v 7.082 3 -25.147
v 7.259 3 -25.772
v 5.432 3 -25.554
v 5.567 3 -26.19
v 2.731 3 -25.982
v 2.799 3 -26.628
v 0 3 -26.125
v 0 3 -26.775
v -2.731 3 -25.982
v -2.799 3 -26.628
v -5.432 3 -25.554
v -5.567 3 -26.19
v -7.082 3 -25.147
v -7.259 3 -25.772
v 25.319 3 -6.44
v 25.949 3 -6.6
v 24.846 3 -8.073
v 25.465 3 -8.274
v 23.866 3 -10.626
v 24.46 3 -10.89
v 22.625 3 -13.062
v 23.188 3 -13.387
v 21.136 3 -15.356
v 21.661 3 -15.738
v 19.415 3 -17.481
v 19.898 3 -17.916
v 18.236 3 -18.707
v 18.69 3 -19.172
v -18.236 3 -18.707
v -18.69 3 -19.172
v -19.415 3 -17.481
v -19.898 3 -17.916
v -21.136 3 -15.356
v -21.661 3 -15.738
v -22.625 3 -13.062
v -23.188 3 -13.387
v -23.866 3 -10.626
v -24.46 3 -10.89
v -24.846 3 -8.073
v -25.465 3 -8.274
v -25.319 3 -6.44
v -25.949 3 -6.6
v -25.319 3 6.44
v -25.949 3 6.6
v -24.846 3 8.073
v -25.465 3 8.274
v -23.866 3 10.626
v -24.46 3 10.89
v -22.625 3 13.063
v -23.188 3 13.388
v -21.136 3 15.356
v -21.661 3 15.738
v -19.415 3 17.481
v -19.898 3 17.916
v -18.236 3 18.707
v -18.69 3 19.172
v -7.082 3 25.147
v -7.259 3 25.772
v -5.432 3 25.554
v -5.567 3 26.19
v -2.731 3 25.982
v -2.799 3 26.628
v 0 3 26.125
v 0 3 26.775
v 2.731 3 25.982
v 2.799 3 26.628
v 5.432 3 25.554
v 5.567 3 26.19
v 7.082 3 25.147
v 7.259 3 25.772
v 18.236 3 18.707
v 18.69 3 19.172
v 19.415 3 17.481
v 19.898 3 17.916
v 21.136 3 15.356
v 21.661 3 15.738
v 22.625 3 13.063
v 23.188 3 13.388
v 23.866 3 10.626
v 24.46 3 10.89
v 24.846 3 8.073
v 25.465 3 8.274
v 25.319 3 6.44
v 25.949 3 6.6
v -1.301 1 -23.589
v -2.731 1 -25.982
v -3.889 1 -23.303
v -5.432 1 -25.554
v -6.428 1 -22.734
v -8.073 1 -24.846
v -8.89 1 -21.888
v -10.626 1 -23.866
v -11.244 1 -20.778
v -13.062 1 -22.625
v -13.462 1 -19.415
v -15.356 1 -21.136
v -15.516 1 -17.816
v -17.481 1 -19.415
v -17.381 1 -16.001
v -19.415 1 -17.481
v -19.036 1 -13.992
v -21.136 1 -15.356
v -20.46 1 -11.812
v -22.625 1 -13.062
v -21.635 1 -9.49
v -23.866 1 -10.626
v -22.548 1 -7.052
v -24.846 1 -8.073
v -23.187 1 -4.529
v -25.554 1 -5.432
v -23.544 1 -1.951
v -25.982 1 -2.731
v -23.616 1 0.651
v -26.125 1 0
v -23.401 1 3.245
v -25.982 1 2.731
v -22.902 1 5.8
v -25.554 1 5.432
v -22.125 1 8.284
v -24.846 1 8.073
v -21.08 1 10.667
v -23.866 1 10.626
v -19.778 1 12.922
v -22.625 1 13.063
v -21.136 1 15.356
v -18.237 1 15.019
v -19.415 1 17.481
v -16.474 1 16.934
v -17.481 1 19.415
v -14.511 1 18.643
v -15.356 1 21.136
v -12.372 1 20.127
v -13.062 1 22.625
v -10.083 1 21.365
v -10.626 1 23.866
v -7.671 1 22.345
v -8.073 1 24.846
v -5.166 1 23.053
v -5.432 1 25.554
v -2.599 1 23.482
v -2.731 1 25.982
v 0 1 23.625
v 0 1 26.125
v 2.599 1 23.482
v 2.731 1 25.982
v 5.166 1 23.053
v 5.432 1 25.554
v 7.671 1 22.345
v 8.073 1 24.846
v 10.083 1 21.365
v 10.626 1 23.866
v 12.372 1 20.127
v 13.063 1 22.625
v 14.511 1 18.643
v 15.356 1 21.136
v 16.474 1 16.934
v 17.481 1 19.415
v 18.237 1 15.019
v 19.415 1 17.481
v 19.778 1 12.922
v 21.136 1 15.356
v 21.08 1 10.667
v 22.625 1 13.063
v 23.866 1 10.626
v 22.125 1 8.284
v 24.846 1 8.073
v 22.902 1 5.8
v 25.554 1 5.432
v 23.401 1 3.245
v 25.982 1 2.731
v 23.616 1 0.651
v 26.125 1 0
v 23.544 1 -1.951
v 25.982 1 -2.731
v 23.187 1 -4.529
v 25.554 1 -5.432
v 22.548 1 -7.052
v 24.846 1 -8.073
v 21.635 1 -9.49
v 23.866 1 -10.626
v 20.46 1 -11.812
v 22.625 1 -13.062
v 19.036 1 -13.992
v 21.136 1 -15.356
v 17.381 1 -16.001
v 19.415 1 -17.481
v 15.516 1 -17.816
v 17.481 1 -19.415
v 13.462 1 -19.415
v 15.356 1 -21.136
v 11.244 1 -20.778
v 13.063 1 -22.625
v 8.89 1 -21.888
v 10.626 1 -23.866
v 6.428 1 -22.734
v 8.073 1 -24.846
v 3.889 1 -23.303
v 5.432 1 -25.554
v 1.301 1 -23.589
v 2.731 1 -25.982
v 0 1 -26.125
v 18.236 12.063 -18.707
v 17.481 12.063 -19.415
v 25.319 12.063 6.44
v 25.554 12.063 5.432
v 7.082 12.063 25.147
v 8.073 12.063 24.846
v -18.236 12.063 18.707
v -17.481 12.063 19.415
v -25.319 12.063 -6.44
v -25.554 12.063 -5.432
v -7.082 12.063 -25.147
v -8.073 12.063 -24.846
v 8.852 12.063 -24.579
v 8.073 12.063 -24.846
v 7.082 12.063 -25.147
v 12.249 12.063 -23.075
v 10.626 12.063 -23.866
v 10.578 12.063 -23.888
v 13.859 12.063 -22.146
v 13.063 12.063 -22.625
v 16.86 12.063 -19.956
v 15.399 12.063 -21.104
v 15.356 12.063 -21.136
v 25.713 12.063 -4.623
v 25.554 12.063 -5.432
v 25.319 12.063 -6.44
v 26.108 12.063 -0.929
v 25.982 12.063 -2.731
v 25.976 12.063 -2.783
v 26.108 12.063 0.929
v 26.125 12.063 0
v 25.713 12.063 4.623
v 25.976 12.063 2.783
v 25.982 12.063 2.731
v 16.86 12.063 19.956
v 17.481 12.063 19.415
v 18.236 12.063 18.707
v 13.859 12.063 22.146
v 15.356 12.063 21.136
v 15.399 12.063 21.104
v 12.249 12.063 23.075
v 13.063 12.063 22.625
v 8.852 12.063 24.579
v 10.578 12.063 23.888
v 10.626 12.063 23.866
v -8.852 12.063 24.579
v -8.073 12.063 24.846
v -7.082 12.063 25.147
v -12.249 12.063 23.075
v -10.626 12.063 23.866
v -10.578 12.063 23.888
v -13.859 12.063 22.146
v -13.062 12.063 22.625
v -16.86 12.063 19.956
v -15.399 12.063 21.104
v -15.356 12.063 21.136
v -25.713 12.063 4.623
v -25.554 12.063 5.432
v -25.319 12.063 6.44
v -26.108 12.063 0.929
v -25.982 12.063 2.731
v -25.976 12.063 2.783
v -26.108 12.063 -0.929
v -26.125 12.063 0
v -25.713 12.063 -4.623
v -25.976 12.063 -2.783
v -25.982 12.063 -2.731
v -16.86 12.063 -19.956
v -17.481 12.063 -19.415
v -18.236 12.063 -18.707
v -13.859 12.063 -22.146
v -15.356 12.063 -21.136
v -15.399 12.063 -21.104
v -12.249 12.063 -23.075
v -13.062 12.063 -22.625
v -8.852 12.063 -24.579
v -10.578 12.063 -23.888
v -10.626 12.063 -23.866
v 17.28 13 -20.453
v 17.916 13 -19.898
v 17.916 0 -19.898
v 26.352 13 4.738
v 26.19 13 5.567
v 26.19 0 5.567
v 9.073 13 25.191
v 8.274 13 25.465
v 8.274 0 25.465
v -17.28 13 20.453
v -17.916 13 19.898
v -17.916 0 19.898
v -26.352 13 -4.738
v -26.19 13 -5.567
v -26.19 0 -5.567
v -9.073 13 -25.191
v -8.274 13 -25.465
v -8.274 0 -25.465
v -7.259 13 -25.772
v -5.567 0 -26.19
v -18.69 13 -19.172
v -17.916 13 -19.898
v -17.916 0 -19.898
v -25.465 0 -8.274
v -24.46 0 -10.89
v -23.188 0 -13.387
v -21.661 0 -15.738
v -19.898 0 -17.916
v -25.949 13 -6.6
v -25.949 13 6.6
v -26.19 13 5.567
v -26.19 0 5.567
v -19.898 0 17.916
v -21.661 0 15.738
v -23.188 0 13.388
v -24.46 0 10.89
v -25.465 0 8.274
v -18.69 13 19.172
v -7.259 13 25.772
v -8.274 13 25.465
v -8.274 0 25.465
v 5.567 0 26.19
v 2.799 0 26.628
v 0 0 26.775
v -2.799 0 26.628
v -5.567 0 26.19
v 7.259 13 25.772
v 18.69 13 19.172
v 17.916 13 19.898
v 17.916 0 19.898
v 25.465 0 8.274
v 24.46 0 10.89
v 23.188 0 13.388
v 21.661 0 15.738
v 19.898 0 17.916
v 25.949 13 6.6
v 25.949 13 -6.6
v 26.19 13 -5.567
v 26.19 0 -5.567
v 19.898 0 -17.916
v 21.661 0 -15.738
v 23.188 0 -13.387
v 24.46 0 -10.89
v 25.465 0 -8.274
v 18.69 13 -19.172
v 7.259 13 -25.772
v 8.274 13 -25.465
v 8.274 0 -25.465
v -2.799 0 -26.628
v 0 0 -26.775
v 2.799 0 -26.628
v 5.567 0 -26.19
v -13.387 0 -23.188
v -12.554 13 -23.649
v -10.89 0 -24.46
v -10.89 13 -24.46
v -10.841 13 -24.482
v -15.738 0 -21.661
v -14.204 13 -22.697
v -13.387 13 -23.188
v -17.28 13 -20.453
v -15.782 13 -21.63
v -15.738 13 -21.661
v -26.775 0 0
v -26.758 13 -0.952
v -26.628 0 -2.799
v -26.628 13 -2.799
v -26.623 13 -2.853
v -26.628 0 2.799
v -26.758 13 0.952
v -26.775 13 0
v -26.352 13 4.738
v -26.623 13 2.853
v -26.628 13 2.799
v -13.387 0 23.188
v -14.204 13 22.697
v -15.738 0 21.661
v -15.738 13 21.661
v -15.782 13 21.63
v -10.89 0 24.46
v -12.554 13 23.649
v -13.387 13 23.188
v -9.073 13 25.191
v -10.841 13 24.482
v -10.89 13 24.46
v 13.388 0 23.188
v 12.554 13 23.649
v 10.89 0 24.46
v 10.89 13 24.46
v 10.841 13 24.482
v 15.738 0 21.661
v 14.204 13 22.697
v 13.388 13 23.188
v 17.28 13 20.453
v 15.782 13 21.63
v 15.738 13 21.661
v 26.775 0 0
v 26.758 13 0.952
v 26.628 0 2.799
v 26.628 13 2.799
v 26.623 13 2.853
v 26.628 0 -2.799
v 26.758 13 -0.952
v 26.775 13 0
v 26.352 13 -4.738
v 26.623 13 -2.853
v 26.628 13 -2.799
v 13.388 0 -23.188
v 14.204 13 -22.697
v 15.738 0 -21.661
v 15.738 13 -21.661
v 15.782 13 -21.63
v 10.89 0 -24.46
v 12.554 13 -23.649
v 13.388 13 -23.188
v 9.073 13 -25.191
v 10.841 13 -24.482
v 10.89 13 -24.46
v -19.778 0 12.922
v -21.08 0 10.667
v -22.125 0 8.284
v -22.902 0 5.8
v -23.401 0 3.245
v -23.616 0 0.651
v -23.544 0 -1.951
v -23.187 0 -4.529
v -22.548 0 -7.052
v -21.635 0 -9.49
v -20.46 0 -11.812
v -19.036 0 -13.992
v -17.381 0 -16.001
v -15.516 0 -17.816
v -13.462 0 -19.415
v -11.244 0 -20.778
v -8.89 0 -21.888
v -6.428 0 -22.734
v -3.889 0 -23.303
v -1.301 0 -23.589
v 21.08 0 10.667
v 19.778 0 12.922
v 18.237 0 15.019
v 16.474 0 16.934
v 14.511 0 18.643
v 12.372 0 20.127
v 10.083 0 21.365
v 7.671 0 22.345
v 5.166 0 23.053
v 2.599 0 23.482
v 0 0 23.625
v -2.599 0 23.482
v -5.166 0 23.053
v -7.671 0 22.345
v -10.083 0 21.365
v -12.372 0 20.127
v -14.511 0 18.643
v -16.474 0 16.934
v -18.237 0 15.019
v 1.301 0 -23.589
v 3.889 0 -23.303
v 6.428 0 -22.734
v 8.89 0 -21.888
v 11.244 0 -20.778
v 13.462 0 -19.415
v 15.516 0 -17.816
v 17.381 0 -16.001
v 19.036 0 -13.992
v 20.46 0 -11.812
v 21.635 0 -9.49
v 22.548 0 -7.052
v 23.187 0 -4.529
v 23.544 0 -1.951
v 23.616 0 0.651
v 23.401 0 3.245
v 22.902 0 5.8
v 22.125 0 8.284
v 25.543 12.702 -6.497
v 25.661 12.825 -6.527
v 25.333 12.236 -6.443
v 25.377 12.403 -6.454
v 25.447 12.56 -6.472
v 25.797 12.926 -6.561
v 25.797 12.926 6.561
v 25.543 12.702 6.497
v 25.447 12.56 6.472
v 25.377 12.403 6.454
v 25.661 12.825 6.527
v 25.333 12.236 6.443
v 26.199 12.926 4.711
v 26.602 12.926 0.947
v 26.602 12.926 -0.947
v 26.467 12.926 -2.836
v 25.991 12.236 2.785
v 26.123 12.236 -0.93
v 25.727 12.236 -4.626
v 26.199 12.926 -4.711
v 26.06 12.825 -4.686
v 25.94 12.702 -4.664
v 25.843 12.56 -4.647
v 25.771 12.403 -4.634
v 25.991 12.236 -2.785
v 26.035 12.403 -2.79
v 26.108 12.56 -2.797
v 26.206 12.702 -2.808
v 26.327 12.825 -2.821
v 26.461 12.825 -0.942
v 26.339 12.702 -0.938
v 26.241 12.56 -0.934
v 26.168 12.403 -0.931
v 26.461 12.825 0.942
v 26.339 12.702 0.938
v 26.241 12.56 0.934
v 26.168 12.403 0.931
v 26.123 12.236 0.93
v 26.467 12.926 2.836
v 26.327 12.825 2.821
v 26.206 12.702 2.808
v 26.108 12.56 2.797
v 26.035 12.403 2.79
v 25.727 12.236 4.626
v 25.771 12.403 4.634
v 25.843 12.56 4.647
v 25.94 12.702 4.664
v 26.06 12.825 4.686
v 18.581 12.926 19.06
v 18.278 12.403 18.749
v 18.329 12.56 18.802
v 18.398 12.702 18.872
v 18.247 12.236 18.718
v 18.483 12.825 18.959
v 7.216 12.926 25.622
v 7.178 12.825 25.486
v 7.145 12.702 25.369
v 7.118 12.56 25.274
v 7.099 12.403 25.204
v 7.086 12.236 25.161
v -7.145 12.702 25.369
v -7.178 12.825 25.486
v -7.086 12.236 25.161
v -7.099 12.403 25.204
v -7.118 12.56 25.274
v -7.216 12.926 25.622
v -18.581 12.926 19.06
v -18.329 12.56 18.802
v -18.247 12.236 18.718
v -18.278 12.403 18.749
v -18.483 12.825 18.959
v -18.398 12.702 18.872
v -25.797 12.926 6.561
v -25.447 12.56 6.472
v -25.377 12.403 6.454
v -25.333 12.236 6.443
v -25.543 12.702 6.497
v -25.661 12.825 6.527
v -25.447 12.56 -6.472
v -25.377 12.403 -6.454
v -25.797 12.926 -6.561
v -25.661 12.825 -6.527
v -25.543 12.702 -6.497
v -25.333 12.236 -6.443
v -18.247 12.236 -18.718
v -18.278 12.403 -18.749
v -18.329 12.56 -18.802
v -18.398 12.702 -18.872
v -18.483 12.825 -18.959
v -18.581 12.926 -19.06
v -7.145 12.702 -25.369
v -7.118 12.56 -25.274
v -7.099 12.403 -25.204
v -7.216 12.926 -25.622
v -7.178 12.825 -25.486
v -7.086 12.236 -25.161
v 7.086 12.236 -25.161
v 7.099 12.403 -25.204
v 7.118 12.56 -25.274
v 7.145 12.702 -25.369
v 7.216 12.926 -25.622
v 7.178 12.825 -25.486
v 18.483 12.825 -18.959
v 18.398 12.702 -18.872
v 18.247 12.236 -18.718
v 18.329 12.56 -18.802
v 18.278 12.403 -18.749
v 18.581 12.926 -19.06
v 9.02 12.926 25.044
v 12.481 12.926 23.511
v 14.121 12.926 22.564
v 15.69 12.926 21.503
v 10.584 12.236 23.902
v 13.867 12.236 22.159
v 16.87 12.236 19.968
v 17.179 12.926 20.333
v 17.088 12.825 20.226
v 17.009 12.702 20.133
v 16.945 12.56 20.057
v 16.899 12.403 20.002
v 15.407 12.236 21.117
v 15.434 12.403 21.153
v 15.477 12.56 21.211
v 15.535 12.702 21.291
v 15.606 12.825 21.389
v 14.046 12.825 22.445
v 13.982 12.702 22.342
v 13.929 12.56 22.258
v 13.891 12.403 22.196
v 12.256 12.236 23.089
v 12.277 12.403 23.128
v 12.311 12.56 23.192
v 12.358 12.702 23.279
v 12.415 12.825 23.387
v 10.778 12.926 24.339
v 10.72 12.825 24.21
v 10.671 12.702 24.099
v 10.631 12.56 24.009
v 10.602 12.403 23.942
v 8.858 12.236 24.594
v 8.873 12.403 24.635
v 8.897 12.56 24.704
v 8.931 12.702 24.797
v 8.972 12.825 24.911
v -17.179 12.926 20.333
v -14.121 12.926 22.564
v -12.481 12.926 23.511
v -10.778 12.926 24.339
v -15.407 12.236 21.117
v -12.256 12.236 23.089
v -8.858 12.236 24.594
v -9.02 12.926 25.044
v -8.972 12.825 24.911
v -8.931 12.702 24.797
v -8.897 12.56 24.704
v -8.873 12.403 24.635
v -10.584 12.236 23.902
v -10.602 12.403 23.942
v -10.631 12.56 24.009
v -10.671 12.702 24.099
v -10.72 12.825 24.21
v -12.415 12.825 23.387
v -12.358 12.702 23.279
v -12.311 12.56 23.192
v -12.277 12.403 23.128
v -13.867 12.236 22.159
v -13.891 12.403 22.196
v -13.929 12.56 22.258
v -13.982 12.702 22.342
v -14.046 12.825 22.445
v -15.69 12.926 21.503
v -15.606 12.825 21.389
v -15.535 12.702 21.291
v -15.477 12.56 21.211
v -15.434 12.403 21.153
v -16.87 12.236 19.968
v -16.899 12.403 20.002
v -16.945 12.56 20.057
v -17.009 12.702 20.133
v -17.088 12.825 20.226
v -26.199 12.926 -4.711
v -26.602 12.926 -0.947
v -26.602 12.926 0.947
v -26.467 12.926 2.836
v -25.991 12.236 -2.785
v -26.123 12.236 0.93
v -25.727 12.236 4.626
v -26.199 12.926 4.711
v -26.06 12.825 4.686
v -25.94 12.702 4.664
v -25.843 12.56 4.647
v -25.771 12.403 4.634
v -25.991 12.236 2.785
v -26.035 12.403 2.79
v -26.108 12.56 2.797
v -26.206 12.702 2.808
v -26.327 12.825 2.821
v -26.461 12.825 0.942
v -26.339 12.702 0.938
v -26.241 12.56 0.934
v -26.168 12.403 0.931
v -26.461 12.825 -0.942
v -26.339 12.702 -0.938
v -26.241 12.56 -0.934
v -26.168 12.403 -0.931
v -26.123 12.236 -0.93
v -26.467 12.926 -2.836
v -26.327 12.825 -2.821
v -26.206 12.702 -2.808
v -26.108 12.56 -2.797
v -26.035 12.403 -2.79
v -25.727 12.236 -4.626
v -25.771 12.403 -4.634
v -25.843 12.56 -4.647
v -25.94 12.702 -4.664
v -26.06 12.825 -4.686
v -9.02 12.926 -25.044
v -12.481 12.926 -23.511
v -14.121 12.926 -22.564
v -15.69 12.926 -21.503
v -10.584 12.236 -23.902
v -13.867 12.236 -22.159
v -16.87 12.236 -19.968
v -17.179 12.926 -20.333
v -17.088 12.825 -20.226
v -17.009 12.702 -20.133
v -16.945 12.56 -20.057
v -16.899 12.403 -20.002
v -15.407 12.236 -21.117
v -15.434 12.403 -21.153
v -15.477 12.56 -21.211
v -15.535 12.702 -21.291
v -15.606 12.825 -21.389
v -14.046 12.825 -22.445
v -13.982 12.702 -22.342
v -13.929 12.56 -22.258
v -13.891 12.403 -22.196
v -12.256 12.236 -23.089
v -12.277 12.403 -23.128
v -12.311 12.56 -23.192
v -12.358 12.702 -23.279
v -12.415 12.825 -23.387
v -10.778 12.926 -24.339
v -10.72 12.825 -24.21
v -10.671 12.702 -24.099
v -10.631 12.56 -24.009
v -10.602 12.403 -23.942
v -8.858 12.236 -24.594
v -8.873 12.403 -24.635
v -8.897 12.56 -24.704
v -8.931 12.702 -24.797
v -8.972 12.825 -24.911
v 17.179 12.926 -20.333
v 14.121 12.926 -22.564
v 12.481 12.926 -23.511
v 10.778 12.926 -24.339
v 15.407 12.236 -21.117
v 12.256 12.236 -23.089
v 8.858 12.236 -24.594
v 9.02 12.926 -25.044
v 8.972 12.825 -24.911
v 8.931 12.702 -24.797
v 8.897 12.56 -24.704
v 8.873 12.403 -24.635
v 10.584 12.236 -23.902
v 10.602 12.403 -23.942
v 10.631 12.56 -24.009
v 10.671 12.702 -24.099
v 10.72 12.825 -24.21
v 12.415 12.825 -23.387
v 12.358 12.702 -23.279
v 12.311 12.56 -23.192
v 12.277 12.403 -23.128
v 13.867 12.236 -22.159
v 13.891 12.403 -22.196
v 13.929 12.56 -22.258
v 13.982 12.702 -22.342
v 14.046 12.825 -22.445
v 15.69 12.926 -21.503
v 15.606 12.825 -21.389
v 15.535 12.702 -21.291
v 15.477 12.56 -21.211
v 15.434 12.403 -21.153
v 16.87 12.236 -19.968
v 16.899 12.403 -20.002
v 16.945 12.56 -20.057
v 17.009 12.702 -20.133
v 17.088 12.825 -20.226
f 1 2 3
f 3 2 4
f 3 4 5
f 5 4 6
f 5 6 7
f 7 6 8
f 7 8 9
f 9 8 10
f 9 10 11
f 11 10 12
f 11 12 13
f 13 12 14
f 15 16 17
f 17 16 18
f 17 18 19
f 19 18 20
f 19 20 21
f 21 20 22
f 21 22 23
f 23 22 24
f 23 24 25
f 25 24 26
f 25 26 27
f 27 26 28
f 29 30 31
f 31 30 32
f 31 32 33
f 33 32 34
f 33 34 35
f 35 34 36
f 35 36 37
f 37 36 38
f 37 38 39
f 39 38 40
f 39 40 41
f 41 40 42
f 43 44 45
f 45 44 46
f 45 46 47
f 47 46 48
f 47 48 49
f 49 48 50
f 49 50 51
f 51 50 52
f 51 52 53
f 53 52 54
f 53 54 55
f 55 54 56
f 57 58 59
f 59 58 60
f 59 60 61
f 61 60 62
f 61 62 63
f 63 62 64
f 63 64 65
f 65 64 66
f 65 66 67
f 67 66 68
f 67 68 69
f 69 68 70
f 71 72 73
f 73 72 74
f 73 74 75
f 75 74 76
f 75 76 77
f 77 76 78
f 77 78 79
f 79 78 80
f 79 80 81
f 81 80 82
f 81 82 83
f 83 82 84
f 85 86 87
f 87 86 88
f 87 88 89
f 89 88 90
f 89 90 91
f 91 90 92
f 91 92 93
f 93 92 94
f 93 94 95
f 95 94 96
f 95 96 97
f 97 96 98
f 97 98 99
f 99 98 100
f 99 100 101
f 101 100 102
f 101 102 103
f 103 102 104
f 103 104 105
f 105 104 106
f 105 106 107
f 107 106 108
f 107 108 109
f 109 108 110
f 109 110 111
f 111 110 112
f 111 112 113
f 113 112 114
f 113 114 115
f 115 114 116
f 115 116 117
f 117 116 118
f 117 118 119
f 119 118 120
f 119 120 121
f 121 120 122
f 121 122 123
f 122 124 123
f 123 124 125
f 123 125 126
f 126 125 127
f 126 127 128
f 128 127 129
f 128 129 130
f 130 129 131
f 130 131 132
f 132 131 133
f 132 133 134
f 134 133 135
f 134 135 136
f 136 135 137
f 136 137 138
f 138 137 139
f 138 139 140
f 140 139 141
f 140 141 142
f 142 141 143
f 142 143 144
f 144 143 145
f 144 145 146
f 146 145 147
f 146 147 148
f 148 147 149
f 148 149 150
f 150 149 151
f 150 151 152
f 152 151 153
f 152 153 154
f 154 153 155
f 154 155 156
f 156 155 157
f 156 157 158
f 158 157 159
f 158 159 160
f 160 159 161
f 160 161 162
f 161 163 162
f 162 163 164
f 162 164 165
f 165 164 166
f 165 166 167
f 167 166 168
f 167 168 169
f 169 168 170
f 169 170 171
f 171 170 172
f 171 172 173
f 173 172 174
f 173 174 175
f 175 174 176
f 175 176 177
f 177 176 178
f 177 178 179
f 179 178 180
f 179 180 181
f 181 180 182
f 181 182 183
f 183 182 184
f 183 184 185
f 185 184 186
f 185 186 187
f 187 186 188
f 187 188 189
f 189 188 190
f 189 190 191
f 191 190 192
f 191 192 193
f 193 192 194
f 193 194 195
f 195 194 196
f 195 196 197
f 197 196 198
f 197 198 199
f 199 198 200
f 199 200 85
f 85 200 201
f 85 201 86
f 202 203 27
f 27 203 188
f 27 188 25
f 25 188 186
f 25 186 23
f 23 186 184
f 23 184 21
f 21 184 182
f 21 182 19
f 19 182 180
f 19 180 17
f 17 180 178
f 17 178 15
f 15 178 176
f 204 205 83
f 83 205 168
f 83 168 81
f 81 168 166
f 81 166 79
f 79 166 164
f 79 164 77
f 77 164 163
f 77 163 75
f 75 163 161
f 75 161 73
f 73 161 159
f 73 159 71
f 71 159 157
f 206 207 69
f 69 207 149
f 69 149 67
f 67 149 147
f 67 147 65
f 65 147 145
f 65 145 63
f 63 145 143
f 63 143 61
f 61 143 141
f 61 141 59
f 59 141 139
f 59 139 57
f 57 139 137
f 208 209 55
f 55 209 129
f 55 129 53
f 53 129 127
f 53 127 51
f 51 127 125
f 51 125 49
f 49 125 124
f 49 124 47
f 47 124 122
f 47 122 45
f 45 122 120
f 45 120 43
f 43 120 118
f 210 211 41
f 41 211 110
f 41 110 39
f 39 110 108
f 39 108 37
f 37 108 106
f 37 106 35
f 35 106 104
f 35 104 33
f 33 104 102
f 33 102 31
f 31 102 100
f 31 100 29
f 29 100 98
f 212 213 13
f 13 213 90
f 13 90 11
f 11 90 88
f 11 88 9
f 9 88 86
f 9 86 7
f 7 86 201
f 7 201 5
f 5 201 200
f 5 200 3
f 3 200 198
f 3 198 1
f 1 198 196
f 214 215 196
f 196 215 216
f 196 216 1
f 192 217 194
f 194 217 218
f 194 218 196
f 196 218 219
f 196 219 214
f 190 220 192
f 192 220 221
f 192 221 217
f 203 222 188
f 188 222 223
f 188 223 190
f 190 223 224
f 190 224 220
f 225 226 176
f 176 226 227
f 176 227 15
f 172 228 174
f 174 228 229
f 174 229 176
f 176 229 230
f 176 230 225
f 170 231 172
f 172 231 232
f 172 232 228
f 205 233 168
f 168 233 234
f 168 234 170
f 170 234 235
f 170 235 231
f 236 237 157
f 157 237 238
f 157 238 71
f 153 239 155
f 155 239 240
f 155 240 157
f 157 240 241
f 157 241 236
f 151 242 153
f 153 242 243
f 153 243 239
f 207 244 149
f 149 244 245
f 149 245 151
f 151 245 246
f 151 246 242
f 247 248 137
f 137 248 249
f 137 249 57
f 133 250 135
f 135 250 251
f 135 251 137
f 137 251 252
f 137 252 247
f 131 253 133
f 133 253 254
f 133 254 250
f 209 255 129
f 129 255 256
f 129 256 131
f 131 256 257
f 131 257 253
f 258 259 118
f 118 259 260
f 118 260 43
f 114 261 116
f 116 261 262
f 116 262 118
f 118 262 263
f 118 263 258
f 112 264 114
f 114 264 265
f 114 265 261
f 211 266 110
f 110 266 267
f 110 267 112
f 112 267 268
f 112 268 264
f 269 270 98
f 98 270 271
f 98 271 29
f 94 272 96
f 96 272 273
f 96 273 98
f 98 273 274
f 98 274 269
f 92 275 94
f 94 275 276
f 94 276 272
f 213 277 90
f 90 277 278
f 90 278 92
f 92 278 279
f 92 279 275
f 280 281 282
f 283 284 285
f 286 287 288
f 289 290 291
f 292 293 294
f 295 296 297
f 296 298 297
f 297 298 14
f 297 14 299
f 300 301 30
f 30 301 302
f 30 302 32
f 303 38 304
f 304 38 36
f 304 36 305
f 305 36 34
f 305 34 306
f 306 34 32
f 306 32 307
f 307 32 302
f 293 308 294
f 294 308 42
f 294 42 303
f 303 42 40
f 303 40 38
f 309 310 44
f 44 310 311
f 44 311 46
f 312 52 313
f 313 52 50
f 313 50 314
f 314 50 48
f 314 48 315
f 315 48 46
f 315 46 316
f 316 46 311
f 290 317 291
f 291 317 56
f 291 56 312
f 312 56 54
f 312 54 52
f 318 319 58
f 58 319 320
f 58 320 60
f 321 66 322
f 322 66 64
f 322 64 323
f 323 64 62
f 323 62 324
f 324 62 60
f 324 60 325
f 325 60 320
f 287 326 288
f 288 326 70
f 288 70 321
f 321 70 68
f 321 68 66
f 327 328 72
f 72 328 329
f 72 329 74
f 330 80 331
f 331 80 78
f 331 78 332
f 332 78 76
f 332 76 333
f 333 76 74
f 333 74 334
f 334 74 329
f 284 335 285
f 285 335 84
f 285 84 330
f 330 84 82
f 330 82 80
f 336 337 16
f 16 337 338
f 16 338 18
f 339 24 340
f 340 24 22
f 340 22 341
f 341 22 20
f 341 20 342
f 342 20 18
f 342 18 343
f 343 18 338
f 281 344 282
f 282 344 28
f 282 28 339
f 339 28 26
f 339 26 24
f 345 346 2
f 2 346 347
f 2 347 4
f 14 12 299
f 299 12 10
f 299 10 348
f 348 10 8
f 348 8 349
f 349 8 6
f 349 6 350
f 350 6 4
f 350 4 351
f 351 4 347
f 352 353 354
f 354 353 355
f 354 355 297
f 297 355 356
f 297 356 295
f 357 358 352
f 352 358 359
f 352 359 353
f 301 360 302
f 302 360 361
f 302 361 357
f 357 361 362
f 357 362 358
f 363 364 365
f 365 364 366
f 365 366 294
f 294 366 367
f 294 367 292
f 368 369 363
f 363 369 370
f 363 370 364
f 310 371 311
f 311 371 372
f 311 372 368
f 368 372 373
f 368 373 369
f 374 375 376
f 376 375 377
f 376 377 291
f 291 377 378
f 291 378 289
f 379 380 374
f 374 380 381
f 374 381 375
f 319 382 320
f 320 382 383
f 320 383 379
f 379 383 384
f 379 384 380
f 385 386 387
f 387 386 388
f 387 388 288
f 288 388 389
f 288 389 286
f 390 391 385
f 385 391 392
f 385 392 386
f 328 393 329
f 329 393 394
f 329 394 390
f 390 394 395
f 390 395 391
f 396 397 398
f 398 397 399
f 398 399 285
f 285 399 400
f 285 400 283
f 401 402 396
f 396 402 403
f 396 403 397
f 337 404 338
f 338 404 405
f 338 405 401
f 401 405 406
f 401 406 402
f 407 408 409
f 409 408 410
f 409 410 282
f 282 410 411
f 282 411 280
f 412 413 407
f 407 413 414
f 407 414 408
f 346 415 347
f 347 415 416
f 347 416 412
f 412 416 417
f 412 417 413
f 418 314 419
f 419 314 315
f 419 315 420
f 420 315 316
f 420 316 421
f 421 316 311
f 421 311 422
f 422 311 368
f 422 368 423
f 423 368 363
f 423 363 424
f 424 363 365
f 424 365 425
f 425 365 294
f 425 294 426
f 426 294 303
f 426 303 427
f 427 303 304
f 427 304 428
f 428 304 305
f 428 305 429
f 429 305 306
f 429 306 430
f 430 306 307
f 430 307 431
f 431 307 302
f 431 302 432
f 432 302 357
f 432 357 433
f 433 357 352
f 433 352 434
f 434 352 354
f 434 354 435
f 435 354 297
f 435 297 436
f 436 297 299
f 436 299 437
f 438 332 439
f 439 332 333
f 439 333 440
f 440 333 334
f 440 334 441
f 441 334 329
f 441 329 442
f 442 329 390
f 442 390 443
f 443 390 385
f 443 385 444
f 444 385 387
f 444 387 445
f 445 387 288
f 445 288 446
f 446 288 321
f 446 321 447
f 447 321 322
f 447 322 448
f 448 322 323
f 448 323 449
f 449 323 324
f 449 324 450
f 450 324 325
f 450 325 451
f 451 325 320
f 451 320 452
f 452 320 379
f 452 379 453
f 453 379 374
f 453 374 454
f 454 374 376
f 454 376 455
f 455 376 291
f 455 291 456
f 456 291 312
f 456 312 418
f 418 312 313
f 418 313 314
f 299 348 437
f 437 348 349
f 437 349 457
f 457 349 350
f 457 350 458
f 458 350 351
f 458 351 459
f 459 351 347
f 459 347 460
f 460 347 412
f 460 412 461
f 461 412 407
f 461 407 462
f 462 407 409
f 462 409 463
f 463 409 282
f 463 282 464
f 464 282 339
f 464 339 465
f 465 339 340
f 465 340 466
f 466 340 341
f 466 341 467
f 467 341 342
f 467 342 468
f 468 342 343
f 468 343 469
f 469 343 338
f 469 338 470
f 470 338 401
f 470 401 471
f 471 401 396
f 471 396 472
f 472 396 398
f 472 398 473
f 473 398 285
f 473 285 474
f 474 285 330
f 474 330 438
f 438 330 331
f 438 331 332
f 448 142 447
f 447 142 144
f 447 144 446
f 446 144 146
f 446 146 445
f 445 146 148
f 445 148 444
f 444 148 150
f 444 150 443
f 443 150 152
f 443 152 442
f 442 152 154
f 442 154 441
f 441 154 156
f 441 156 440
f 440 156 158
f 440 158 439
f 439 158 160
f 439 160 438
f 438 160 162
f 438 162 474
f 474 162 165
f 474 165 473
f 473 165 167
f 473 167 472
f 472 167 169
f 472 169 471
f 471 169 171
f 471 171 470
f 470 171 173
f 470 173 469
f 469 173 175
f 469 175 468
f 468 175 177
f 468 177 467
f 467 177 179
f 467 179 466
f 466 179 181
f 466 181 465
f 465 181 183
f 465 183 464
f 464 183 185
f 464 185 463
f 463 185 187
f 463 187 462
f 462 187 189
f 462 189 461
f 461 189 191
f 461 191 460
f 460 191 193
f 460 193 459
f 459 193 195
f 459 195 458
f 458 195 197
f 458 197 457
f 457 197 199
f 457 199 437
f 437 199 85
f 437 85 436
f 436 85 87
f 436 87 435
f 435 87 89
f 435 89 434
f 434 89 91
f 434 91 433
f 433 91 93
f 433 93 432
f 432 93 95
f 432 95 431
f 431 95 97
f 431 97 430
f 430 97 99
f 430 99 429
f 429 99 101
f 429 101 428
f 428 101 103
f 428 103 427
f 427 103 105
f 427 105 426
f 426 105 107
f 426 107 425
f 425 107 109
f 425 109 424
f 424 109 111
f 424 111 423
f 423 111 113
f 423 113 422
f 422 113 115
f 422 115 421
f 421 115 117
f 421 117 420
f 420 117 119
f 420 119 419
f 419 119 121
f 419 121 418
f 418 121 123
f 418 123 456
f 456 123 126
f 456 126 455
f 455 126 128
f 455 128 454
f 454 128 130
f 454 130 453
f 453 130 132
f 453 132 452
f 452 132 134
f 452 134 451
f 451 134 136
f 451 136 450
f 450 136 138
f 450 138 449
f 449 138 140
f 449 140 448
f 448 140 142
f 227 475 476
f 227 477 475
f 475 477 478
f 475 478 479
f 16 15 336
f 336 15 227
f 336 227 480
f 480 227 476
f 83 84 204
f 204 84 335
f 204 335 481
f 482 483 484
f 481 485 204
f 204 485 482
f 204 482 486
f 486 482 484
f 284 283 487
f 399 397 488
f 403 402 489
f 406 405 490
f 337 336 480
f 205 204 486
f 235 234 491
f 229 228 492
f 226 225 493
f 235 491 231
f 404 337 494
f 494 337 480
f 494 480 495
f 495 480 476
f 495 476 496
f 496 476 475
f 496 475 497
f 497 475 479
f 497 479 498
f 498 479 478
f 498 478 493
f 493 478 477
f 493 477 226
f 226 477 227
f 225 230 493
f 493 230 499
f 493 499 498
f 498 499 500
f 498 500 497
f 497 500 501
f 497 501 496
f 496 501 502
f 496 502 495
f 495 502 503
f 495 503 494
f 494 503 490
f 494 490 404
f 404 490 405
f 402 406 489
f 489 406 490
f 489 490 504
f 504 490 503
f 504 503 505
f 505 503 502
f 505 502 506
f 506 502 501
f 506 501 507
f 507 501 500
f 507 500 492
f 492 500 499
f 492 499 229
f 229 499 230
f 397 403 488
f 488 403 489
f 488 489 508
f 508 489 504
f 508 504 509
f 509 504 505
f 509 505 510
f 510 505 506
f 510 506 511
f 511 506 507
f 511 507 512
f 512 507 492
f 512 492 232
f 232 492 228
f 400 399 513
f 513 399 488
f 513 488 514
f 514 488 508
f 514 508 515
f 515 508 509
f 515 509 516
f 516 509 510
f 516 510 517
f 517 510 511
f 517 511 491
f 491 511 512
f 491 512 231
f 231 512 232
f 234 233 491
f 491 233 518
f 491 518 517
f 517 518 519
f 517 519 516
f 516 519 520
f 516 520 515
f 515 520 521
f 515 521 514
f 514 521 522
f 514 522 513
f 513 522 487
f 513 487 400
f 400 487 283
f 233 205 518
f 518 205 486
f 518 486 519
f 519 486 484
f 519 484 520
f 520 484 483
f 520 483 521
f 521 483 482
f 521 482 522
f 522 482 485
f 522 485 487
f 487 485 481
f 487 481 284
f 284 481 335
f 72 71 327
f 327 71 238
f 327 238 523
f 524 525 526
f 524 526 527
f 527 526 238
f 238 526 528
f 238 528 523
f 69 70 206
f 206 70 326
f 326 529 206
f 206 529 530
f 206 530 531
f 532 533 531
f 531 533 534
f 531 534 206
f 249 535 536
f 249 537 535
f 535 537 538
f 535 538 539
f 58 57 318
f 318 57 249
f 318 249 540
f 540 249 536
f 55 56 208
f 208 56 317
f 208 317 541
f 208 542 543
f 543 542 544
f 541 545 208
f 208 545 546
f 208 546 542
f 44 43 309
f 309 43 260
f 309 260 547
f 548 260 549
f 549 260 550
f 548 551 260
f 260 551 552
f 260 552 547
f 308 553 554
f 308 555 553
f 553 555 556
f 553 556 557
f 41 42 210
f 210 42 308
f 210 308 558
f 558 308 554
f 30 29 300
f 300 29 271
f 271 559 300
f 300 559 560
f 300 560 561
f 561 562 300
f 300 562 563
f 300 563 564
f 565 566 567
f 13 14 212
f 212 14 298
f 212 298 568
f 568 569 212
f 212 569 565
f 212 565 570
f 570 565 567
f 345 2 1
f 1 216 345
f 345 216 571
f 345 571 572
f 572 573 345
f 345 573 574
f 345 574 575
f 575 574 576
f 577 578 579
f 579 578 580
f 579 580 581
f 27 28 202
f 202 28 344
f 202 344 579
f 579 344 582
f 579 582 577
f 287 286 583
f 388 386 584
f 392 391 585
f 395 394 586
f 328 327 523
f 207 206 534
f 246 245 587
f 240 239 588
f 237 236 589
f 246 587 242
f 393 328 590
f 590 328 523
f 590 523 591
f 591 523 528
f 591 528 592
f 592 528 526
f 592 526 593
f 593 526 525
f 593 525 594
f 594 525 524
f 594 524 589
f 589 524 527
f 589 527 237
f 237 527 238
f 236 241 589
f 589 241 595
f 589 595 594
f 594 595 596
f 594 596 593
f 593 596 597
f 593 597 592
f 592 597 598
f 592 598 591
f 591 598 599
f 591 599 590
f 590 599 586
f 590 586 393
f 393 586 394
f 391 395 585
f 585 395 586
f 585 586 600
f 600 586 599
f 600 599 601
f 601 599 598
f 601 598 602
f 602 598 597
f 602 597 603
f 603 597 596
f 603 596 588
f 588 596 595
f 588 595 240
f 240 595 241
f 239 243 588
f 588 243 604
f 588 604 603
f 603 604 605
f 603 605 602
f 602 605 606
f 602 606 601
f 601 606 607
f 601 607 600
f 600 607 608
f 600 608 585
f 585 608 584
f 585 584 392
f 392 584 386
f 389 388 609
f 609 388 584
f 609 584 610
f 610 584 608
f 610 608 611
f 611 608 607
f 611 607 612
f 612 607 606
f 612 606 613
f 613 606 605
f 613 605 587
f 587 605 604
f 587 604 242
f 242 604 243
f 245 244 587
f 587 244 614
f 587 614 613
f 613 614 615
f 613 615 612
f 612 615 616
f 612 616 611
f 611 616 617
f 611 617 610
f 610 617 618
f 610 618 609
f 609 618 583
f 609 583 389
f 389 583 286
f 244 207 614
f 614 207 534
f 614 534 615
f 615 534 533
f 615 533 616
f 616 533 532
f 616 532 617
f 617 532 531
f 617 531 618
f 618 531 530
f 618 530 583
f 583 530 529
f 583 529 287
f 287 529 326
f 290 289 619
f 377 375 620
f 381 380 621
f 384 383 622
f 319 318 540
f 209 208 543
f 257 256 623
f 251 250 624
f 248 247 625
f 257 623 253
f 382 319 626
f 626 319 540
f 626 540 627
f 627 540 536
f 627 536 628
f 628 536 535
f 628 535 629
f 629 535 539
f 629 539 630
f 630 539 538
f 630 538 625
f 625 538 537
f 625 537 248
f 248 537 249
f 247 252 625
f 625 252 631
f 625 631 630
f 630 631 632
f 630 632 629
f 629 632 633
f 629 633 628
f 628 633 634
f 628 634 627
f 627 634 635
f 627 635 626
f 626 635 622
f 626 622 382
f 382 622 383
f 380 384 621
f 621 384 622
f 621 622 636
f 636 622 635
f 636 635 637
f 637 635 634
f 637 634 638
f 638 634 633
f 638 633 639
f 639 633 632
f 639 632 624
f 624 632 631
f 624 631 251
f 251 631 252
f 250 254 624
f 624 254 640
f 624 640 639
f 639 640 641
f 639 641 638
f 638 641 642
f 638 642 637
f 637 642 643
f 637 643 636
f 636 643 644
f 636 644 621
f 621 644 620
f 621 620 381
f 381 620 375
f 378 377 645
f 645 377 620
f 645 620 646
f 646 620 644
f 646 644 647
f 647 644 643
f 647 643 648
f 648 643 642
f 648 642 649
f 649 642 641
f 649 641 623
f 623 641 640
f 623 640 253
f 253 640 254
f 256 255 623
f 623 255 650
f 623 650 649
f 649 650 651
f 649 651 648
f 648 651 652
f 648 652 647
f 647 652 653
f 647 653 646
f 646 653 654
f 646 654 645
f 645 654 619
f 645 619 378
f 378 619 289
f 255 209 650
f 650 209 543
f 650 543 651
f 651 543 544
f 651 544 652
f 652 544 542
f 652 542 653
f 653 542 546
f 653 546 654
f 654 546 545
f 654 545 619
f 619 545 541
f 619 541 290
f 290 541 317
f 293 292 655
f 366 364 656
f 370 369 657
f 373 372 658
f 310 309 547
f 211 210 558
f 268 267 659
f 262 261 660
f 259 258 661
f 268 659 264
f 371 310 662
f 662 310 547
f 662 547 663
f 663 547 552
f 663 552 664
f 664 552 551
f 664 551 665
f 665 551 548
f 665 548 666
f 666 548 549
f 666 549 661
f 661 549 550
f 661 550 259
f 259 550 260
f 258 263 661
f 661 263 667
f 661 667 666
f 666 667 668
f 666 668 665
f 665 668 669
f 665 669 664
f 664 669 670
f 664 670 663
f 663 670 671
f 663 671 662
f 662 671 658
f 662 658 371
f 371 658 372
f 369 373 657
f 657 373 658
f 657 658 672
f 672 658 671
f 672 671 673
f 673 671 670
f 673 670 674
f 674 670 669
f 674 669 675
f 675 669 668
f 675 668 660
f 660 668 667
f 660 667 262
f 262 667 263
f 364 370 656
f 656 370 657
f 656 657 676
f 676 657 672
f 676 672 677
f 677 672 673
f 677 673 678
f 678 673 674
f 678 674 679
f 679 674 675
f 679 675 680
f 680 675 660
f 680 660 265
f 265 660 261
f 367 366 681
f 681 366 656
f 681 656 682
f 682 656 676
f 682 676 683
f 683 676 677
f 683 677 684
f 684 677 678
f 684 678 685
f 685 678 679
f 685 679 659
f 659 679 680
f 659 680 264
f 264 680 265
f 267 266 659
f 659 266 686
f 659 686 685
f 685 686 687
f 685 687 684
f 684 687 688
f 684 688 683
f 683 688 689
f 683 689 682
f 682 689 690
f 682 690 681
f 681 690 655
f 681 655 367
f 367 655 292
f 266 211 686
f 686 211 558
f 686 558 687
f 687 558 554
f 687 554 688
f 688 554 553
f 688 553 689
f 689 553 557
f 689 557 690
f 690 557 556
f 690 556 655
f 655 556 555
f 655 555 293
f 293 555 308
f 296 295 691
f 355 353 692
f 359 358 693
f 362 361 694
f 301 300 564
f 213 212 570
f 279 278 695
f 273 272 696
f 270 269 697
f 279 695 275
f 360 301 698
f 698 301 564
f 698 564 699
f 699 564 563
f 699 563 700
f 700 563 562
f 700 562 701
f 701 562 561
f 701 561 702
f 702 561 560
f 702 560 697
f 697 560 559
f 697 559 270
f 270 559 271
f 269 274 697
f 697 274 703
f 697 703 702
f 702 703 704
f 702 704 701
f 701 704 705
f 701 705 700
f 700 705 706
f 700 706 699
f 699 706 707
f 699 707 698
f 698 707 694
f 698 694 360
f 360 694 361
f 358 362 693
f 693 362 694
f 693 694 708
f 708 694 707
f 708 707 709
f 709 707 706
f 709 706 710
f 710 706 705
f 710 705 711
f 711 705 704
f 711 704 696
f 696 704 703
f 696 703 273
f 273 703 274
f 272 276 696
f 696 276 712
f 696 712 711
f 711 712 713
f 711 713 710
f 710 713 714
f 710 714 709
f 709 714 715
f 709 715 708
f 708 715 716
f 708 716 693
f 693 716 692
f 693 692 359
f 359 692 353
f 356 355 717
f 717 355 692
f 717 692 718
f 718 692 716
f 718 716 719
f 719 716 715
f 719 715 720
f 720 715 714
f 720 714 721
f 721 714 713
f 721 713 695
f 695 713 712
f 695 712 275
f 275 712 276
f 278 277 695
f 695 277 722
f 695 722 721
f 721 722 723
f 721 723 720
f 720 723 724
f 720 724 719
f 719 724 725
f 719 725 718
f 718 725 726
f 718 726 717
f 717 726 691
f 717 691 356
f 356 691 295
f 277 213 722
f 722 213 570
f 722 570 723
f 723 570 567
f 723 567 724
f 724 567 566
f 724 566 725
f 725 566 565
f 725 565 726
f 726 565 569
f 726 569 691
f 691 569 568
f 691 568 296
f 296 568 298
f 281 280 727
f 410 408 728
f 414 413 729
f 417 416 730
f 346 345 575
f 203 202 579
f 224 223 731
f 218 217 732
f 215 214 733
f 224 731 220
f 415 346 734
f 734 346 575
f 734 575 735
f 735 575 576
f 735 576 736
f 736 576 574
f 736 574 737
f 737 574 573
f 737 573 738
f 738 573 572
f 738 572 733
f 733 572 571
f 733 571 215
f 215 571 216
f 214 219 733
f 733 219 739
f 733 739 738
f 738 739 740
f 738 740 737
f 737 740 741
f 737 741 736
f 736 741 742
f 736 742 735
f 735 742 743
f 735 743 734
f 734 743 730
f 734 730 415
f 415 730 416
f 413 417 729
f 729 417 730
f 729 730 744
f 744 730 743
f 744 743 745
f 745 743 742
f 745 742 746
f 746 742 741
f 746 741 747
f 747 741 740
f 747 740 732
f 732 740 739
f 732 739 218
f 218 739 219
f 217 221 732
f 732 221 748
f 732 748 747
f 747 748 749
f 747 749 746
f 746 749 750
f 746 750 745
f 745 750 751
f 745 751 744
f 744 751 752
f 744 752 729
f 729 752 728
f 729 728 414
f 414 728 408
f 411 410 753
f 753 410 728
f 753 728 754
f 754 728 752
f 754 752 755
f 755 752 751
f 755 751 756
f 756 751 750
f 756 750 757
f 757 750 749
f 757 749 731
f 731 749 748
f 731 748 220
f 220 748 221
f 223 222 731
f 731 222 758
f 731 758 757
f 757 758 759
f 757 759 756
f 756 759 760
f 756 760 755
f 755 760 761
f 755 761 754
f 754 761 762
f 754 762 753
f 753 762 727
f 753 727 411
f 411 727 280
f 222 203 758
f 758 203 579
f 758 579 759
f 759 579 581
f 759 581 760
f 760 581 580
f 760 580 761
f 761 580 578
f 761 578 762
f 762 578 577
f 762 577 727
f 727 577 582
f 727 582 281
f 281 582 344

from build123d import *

# Parameters (mm, degrees)
SKETCH1_R                = 26.125
BOSS_EXTRUDE1_DEPTH      = 1
SKETCH2_W                = 0.65
SKETCH2_H                = 3
CUT_EXTRUDE2_DEPTH       = 38.984224
CUT_EXTRUDE2_DEPTH_BACK  = 38.984224
SKETCH3_R                = 23.625
BOSS_EXTRUDE2_DEPTH      = 13
FILLET1_R                = 1
CIRPATTERN1_COUNT        = 6
FILLET1_OF_CIRPATTERN1_R = 1


with BuildPart() as part:
    # Sketch1 → Boss-Extrude1 (new body)
    with BuildSketch(Plane(origin=(0, 0, 0), x_dir=(1, 0, 0), z_dir=(0, 1, 0))):
        with Locations(Location((0, 0, 0), (0, 0, 270))):
            Circle(SKETCH1_R)
    extrude(amount=BOSS_EXTRUDE1_DEPTH)

    # Sketch2 → Revolve1 (revolve)
    with BuildSketch(Plane.XY, mode=Mode.PRIVATE) as revolve1_sk:
        with Locations((26.45, 1.5)):
            Rectangle(SKETCH2_W, SKETCH2_H)
    revolve(revolve1_sk.sketch.rotate(Axis((0, 0, 0), (0, 1, 0)), 90), axis=Axis((0, 0, 0), (0, 1, 0)))

    # Sketch3 → Cut-Extrude2 (cut, two sides: drawn at the far end of the back side and taken through both)
    with BuildSketch(Plane(origin=(0, 0, 0), x_dir=(1, 0, 0), z_dir=(0, 1, 0)).offset(-CUT_EXTRUDE2_DEPTH_BACK)):
        with Locations(Location((0, 0, 0), (0, 0, 270))):
            Circle(SKETCH3_R)
    extrude(amount=CUT_EXTRUDE2_DEPTH + CUT_EXTRUDE2_DEPTH_BACK, mode=Mode.SUBTRACT)

    # Sketch5 → Boss-Extrude2 (add)
    with BuildSketch(Plane(origin=(0, 0, 0), x_dir=(1, 0, 0), z_dir=(0, 1, 0))):
        with BuildLine():
            Line((25.948808, 6.6), (25.318865, 6.439776))
            ThreePointArc((25.318865, 6.439776), (26.125, 0), (25.318865, -6.439776))
            Line((25.318865, -6.439776), (25.948808, -6.6))
            ThreePointArc((25.948808, -6.6), (26.775, 0), (25.948808, 6.6))
        make_face()
    boss_extrude2 = extrude(amount=BOSS_EXTRUDE2_DEPTH)

    # Fillet1
    # the kernel refuses this fillet: 1 mm, written as the material it takes off along each edge
    with BuildSketch(Plane(origin=(0, 13, 0), x_dir=(0.9431839321448116, 0, -0.33227107930701955), z_dir=(-0.33227107930701955, 0, -0.9431839321448116))) as fillet1_piece_1:
        with BuildLine():
            CenterArc((27.125, 0.93675), FILLET1_R, 180, 69.512685)
            Line((26.125, 0.93675), (26.105, 0.93675))
            Line((26.105, 0.93675), (26.105, 0))
            Line((26.105, 0), (26.125, -0.02))
            ThreePointArc((26.125, -0.02), (26.45, -0.02), (26.768, -0.018735))
            Line((26.768, -0.018735), (26.775, 0))
        make_face()
    revolve(axis=Axis((0, 13, 0), (0, -1, 0)), revolution_arc=38.813358, mode=Mode.SUBTRACT)

    # CirPattern1: Boss-Extrude2 ×6 about axis
    cirpattern1_axis = Axis((0, 0, 0), (0, 1, 0))
    for i in range(1, CIRPATTERN1_COUNT):
        add(boss_extrude2.rotate(cirpattern1_axis, i * 360 / CIRPATTERN1_COUNT))

    # Fillet1 of CirPattern1
    # the kernel refuses this fillet: 1 mm, written as the material it takes off along each edge
    with BuildSketch(Plane(origin=(0, 13, 0), x_dir=(0.18383677044965302, 0, -0.9829567853322146), z_dir=(-0.9829567853322146, 0, -0.18383677044965302))) as fillet1_of_cirpattern1_piece_1:
        with BuildLine():
            CenterArc((27.125, 0.93675), FILLET1_OF_CIRPATTERN1_R, 180, 69.512685)
            Line((26.125, 0.93675), (26.105, 0.93675))
            Line((26.105, 0.93675), (26.105, 0))
            Line((26.105, 0), (26.125, -0.02))
            ThreePointArc((26.125, -0.02), (26.45, -0.02), (26.768, -0.018735))
            Line((26.768, -0.018735), (26.775, 0))
        make_face()
    revolve(axis=Axis((0, 13, 0), (0, -1, 0)), revolution_arc=38.813358, mode=Mode.SUBTRACT)
    with BuildSketch(Plane(origin=(0, 13, 0), x_dir=(-0.7593471616951585, 0, -0.6506857060251953), z_dir=(-0.6506857060251953, 0, 0.7593471616951585))) as fillet1_of_cirpattern1_piece_2:
        with BuildLine():
            CenterArc((27.125, 0.93675), FILLET1_OF_CIRPATTERN1_R, 180, 69.512685)
            Line((26.125, 0.93675), (26.105, 0.93675))
            Line((26.105, 0.93675), (26.105, 0))
            Line((26.105, 0), (26.125, -0.02))
            ThreePointArc((26.125, -0.02), (26.45, -0.02), (26.768, -0.018735))
            Line((26.768, -0.018735), (26.775, 0))
        make_face()
    revolve(axis=Axis((0, 13, 0), (0, -1, 0)), revolution_arc=38.813358, mode=Mode.SUBTRACT)
    with BuildSketch(Plane(origin=(0, 13, 0), x_dir=(-0.9431839321448114, 0, 0.3322710793070194), z_dir=(0.3322710793070194, 0, 0.9431839321448114))) as fillet1_of_cirpattern1_piece_3:
        with BuildLine():
            CenterArc((27.125, 0.93675), FILLET1_OF_CIRPATTERN1_R, 180, 69.512685)
            Line((26.125, 0.93675), (26.105, 0.93675))
            Line((26.105, 0.93675), (26.105, 0))
            Line((26.105, 0), (26.125, -0.02))
            ThreePointArc((26.125, -0.02), (26.45, -0.02), (26.768, -0.018735))
            Line((26.768, -0.018735), (26.775, 0))
        make_face()
    revolve(axis=Axis((0, 13, 0), (0, -1, 0)), revolution_arc=38.813358, mode=Mode.SUBTRACT)
    with BuildSketch(Plane(origin=(0, 13, 0), x_dir=(-0.18383677044965369, 0, 0.9829567853322146), z_dir=(0.9829567853322146, 0, 0.18383677044965369))) as fillet1_of_cirpattern1_piece_4:
        with BuildLine():
            CenterArc((27.125, 0.93675), FILLET1_OF_CIRPATTERN1_R, 180, 69.512685)
            Line((26.125, 0.93675), (26.105, 0.93675))
            Line((26.105, 0.93675), (26.105, 0))
            Line((26.105, 0), (26.125, -0.02))
            ThreePointArc((26.125, -0.02), (26.45, -0.02), (26.768, -0.018735))
            Line((26.768, -0.018735), (26.775, 0))
        make_face()
    revolve(axis=Axis((0, 13, 0), (0, -1, 0)), revolution_arc=38.813358, mode=Mode.SUBTRACT)
    with BuildSketch(Plane(origin=(0, 13, 0), x_dir=(0.7593471616951586, 0, 0.6506857060251952), z_dir=(0.6506857060251952, 0, -0.7593471616951586))) as fillet1_of_cirpattern1_piece_5:
        with BuildLine():
            CenterArc((27.125, 0.93675), FILLET1_OF_CIRPATTERN1_R, 180, 69.512685)
            Line((26.125, 0.93675), (26.105, 0.93675))
            Line((26.105, 0.93675), (26.105, 0))
            Line((26.105, 0), (26.125, -0.02))
            ThreePointArc((26.125, -0.02), (26.45, -0.02), (26.768, -0.018735))
            Line((26.768, -0.018735), (26.775, 0))
        make_face()
    revolve(axis=Axis((0, 13, 0), (0, -1, 0)), revolution_arc=38.813358, mode=Mode.SUBTRACT)


solid = part.part
